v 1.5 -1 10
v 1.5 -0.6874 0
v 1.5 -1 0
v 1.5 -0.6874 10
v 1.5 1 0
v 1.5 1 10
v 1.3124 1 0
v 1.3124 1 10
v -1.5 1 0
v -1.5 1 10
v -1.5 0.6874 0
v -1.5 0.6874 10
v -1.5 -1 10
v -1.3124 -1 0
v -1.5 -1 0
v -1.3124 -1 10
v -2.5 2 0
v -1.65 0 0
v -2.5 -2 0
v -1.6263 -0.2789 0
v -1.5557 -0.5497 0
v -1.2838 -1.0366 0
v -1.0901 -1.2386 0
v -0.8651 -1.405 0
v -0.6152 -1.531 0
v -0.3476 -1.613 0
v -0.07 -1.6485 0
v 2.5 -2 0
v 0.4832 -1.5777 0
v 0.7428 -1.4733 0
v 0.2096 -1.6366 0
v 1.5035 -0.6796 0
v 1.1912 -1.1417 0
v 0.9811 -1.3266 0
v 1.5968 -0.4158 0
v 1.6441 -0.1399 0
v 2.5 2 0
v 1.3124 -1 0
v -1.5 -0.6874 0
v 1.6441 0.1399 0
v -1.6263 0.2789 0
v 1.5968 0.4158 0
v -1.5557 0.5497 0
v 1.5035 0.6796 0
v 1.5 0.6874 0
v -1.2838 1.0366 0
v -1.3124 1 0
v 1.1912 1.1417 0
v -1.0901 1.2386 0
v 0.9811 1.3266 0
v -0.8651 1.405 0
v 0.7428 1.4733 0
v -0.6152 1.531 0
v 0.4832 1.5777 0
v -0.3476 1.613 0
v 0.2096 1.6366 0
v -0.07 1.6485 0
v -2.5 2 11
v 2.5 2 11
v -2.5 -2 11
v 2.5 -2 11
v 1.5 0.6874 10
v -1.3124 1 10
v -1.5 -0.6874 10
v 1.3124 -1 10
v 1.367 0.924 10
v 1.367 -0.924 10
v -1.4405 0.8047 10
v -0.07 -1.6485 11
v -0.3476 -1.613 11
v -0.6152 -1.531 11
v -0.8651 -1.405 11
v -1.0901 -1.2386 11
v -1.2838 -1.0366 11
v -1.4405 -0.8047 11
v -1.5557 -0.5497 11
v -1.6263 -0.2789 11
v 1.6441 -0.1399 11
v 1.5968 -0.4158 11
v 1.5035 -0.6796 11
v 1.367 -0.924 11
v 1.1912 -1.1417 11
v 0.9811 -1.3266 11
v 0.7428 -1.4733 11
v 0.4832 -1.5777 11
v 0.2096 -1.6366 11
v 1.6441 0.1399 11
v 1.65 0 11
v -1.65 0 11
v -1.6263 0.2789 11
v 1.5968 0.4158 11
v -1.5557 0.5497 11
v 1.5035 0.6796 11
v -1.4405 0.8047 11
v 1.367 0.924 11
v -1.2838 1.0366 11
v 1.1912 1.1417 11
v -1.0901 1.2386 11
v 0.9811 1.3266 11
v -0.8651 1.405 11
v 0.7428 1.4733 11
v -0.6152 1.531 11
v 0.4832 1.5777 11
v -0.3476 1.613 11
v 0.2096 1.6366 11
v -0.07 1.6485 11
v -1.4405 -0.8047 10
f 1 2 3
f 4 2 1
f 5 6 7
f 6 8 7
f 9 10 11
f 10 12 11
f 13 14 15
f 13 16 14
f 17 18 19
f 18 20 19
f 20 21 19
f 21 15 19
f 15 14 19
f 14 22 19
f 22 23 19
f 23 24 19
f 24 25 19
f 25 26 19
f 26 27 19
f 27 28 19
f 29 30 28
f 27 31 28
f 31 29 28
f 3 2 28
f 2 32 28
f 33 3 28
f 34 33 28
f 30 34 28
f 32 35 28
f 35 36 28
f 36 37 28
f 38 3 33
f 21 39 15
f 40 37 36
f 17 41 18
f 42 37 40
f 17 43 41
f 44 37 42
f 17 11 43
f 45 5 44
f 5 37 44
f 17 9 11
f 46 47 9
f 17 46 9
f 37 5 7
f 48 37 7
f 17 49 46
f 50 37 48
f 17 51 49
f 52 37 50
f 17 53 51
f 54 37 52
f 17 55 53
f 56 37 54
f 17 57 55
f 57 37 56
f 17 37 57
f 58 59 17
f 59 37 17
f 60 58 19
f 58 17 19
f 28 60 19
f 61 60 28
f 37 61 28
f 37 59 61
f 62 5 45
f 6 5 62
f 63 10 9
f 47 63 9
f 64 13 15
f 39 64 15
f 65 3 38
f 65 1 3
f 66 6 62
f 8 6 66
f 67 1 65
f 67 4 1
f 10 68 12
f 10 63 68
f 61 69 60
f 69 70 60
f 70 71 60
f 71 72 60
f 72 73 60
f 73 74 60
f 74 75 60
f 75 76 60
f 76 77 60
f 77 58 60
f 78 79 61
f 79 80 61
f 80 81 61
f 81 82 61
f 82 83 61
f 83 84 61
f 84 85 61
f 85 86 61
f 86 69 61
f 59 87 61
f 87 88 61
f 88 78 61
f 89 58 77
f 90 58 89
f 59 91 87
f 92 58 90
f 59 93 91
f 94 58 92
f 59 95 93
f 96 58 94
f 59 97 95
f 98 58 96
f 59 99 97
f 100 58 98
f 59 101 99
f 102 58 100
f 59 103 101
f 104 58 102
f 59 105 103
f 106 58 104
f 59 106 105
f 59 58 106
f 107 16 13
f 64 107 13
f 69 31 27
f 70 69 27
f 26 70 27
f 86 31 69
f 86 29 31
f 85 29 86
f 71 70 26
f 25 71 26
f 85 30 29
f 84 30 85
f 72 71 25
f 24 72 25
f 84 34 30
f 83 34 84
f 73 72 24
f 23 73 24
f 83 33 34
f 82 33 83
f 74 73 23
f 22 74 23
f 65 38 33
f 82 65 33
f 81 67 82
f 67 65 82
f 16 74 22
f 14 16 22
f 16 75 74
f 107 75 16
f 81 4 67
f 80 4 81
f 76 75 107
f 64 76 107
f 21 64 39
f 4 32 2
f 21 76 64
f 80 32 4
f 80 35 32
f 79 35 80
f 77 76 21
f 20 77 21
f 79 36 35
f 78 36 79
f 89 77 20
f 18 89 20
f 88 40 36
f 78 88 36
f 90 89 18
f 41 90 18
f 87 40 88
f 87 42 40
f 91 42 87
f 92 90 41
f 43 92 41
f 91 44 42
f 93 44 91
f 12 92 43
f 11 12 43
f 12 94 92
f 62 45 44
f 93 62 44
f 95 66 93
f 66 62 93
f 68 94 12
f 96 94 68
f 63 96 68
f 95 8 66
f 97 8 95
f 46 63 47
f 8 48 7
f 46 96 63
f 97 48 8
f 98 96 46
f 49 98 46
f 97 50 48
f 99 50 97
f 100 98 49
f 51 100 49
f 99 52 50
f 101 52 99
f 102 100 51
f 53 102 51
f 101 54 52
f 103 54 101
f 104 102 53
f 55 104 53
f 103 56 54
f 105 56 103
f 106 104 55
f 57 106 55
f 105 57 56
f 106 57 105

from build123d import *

# Parameters (mm, degrees)
SKETCH1_W           = 5
SKETCH1_H           = 4
SKETCH1_W_2         = 3
SKETCH1_H_2         = 2
BOSS_EXTRUDE1_DEPTH = 10
SKETCH2_W           = 5
SKETCH2_H           = 4
SKETCH2_R           = 1.65
BOSS_EXTRUDE2_DEPTH = 1
SKETCH3_R           = 1.65
CUT_EXTRUDE1_DEPTH  = 12.456439237


with BuildPart() as part:
    # Sketch1 → Boss-Extrude1 (new body)
    with BuildSketch(Plane.XY):
        Rectangle(SKETCH1_W, SKETCH1_H)
        Rectangle(SKETCH1_W_2, SKETCH1_H_2, mode=Mode.SUBTRACT)
    extrude(amount=BOSS_EXTRUDE1_DEPTH)

    # Sketch2 → Boss-Extrude2 (add)
    with BuildSketch(Plane.XY.offset(10)):
        Rectangle(SKETCH2_W, SKETCH2_H)
        with Locations(Location((0, 0, 0), (0, 0, 155.380022671))):
            Circle(SKETCH2_R, mode=Mode.SUBTRACT)
    extrude(amount=BOSS_EXTRUDE2_DEPTH)

    # Sketch3 → Cut-Extrude1 (cut, through all)
    with BuildSketch(Plane.XY.offset(11)):
        with Locations(Location((0, 0, 0), (0, 0, 155.380022671))):
            Circle(SKETCH3_R)
    extrude(amount=-CUT_EXTRUDE1_DEPTH, mode=Mode.SUBTRACT)


solid = part.part
